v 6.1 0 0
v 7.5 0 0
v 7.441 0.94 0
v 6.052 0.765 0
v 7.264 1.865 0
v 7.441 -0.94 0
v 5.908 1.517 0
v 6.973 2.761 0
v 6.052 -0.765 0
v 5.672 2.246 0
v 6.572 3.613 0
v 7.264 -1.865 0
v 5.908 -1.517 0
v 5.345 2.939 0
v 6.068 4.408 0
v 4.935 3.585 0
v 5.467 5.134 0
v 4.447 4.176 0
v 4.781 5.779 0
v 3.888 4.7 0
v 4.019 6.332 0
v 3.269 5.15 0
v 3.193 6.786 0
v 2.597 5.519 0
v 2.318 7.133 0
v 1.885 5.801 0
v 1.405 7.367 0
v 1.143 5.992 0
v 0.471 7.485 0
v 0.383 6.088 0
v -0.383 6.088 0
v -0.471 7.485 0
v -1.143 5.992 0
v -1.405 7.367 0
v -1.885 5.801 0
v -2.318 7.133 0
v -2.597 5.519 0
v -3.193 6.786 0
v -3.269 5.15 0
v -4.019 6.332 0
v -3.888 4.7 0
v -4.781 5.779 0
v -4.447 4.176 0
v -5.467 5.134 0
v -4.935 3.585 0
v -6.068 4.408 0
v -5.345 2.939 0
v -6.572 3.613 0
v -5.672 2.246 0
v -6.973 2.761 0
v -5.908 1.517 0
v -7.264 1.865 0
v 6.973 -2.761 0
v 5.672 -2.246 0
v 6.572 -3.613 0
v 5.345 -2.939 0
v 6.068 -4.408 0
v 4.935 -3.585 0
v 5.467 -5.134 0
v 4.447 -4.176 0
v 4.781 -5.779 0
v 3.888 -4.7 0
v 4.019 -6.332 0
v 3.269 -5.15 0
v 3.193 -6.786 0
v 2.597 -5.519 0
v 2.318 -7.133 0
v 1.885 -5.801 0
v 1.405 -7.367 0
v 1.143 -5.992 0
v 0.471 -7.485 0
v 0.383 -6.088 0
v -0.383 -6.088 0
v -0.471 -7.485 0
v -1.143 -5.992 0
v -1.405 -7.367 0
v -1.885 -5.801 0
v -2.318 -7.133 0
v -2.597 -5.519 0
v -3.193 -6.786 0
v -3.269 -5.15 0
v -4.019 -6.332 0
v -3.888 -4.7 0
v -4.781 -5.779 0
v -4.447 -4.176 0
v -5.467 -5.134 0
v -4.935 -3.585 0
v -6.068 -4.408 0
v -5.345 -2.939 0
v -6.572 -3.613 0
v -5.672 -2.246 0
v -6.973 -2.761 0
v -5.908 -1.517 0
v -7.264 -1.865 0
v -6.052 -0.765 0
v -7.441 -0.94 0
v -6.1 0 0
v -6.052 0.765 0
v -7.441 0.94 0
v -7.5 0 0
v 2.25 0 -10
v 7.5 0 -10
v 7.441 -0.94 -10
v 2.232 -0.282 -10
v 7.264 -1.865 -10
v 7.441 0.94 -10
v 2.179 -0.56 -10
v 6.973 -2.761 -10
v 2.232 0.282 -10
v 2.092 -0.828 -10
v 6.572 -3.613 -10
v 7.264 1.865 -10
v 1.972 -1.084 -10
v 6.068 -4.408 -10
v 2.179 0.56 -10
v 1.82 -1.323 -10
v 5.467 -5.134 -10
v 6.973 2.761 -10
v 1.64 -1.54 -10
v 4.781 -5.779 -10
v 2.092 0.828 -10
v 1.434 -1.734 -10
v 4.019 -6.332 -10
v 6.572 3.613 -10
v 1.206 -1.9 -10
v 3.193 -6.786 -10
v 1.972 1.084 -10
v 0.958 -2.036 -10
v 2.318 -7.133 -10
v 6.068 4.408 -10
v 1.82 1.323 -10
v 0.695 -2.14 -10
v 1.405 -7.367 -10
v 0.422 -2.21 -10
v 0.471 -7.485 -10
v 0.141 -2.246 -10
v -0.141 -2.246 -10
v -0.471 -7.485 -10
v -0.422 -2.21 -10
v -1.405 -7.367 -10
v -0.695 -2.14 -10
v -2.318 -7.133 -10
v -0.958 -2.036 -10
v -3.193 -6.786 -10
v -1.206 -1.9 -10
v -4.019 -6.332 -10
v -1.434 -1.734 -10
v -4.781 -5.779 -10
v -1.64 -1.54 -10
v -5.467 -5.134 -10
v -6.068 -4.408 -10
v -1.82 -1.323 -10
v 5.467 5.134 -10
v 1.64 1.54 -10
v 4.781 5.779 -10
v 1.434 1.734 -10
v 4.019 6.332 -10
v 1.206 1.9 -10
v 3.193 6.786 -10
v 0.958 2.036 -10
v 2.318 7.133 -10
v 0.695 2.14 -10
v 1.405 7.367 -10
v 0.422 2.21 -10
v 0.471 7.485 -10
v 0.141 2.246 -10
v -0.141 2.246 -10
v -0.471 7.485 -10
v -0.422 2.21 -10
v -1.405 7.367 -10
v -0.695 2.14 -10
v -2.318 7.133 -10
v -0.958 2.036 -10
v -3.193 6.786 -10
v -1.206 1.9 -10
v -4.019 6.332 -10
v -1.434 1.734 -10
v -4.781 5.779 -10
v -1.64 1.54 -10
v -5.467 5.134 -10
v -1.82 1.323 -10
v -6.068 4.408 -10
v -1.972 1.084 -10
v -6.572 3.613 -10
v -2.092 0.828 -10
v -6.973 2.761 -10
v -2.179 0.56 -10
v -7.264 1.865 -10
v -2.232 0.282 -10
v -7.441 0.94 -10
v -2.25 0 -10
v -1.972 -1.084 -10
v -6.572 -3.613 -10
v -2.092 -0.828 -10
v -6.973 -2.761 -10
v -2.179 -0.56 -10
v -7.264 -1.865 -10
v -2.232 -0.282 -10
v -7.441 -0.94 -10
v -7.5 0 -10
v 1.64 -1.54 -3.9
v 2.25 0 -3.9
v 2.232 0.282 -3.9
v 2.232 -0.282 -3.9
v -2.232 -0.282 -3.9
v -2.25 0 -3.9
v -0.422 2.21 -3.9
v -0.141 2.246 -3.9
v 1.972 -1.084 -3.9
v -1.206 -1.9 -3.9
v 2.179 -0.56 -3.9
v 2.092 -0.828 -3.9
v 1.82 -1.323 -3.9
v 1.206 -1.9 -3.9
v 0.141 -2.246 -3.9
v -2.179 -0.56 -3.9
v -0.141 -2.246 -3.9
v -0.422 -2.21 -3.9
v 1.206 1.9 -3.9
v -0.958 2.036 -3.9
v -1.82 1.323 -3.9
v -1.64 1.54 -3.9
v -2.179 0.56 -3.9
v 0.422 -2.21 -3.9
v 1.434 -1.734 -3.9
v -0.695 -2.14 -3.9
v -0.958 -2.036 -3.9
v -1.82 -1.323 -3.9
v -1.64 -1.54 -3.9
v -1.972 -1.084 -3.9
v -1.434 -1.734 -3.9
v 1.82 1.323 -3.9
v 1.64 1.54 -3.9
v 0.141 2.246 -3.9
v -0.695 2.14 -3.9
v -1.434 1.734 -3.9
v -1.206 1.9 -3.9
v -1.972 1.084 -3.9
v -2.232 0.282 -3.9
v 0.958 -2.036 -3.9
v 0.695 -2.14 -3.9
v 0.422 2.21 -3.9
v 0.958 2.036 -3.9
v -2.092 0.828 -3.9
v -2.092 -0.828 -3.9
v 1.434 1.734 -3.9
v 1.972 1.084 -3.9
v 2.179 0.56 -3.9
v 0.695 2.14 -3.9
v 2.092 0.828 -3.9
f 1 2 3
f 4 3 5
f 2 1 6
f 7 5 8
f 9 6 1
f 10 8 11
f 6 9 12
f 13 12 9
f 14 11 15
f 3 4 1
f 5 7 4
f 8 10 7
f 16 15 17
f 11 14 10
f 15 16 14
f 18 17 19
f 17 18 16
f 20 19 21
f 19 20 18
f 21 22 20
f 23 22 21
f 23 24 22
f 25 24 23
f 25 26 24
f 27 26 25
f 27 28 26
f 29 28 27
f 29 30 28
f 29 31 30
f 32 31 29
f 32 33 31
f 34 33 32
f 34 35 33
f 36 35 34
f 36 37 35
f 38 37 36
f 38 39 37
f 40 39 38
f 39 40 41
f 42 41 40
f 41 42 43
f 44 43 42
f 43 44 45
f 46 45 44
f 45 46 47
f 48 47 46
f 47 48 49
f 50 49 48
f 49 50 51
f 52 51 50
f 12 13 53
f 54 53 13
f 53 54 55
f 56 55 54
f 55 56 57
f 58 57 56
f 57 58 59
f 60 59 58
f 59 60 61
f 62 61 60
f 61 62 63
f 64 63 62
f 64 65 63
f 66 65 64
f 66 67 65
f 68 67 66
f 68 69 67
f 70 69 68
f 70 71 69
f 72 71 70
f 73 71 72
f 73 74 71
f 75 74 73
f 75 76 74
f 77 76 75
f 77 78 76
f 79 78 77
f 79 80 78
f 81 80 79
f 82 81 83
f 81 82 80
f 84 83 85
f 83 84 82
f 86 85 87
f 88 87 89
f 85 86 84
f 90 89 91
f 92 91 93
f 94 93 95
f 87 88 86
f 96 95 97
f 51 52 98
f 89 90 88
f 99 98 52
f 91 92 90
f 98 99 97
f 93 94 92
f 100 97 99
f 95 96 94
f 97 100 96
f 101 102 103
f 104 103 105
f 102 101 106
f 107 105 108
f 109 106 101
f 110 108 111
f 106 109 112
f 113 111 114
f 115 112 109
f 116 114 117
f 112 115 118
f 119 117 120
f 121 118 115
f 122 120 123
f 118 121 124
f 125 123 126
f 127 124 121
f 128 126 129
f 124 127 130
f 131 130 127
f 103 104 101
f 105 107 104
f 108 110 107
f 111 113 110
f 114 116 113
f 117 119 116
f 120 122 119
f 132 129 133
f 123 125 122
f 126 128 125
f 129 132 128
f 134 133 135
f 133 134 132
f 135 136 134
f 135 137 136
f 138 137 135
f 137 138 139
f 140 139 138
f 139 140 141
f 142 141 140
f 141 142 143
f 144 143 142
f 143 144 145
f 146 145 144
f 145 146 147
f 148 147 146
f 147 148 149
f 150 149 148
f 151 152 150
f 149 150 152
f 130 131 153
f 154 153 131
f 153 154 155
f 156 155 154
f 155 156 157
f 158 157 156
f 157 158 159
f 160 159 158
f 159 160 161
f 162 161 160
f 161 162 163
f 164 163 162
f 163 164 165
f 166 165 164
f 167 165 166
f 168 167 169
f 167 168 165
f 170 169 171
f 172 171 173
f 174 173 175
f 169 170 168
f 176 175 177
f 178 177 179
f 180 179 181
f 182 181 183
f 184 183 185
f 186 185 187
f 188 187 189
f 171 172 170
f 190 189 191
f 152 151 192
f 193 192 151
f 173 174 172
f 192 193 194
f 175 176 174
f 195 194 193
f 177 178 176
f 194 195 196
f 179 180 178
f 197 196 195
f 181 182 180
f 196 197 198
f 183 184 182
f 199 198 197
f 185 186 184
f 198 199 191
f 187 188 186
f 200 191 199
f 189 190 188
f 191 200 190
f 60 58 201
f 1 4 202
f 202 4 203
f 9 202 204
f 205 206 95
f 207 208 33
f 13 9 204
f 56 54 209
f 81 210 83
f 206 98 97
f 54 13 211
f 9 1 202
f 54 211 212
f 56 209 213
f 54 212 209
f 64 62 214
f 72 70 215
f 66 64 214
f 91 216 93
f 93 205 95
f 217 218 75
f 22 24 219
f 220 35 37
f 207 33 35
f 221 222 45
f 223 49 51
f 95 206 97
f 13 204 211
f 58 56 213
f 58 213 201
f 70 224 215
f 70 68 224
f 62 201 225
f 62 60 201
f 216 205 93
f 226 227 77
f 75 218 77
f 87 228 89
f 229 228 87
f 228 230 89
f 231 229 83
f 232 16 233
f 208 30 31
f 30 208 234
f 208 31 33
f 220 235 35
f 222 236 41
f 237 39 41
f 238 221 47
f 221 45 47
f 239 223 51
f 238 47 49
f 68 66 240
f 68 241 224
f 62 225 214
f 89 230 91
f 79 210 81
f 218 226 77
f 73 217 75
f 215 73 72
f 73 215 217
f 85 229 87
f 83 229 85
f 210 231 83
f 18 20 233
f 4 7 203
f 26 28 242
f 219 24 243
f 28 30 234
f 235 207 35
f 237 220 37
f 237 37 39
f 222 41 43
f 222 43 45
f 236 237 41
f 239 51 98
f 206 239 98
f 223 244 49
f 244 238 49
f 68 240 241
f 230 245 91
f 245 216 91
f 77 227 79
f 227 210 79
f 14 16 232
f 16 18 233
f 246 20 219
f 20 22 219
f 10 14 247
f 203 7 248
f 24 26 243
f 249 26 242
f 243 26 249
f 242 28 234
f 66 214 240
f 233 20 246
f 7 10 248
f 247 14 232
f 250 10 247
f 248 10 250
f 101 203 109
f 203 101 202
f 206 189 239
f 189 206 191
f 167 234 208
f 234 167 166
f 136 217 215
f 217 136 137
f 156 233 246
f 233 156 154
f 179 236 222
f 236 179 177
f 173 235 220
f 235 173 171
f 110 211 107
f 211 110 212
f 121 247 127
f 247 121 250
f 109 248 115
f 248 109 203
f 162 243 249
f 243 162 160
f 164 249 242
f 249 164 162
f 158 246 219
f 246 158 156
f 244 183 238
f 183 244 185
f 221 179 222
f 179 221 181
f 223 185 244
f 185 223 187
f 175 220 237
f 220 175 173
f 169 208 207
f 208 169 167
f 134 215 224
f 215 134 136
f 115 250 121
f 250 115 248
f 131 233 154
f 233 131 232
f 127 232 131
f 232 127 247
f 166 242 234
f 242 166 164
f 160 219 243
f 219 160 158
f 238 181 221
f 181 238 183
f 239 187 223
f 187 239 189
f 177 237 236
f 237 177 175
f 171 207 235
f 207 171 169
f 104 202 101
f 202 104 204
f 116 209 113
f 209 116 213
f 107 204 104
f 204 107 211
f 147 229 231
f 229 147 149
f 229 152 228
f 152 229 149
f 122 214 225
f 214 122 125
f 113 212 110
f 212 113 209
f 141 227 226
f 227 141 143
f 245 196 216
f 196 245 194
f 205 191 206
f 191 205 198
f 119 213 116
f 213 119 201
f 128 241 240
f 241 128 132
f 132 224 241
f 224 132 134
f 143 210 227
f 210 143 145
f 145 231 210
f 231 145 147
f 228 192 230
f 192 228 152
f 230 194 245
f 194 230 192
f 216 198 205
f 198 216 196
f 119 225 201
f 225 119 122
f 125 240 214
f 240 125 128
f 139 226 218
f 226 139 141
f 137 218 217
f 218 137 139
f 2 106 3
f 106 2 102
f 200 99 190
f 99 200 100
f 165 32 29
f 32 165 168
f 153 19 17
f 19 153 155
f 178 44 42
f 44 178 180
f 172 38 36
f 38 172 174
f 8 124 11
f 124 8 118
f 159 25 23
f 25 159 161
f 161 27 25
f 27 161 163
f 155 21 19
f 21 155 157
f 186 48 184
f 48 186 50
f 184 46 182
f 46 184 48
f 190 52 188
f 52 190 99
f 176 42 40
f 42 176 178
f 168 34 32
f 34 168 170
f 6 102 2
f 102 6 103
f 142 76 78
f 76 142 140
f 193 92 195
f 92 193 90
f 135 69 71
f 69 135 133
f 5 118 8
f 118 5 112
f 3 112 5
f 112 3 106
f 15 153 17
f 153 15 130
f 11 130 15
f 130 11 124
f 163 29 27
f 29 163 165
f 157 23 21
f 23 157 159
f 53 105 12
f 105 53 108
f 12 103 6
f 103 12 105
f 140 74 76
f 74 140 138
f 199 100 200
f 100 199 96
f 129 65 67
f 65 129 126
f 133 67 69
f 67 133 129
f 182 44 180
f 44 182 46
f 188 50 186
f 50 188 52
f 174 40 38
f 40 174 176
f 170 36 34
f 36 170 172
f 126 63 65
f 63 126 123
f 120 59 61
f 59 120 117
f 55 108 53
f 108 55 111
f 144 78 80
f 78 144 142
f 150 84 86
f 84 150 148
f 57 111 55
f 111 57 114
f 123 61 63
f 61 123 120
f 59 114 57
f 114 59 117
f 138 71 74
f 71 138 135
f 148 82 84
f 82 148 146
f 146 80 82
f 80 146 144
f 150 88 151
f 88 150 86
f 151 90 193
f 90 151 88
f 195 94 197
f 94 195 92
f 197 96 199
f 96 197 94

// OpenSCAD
$fn = 50;


difference() {
	union() {
		translate(v = [0, 0, -10.0000000000]) {
			cylinder(h = 10, r = 7.5000000000);
		}
	}
	union() {
		translate(v = [0, 0, 0]) {
			rotate(a = [0, 0, 0]) {
				difference() {
					union() {
						translate(v = [0, 0, -10.0000000000]) {
							cylinder(h = 10, r = 2.0000000000);
						}
						translate(v = [0, 0, -3.9000000000]) {
							cylinder(h = 3.9000000000, r = 7.5000000000, r1 = 2.2500000000, r2 = 6.1000000000);
						}
						translate(v = [0, 0, -10.0000000000]) {
							cylinder(h = 10, r = 2.2500000000);
						}
						translate(v = [0, 0, -10.0000000000]) {
							cylinder(h = 10, r = 2.0000000000);
						}
					}
					union();
				}
			}
		}
	}
}
